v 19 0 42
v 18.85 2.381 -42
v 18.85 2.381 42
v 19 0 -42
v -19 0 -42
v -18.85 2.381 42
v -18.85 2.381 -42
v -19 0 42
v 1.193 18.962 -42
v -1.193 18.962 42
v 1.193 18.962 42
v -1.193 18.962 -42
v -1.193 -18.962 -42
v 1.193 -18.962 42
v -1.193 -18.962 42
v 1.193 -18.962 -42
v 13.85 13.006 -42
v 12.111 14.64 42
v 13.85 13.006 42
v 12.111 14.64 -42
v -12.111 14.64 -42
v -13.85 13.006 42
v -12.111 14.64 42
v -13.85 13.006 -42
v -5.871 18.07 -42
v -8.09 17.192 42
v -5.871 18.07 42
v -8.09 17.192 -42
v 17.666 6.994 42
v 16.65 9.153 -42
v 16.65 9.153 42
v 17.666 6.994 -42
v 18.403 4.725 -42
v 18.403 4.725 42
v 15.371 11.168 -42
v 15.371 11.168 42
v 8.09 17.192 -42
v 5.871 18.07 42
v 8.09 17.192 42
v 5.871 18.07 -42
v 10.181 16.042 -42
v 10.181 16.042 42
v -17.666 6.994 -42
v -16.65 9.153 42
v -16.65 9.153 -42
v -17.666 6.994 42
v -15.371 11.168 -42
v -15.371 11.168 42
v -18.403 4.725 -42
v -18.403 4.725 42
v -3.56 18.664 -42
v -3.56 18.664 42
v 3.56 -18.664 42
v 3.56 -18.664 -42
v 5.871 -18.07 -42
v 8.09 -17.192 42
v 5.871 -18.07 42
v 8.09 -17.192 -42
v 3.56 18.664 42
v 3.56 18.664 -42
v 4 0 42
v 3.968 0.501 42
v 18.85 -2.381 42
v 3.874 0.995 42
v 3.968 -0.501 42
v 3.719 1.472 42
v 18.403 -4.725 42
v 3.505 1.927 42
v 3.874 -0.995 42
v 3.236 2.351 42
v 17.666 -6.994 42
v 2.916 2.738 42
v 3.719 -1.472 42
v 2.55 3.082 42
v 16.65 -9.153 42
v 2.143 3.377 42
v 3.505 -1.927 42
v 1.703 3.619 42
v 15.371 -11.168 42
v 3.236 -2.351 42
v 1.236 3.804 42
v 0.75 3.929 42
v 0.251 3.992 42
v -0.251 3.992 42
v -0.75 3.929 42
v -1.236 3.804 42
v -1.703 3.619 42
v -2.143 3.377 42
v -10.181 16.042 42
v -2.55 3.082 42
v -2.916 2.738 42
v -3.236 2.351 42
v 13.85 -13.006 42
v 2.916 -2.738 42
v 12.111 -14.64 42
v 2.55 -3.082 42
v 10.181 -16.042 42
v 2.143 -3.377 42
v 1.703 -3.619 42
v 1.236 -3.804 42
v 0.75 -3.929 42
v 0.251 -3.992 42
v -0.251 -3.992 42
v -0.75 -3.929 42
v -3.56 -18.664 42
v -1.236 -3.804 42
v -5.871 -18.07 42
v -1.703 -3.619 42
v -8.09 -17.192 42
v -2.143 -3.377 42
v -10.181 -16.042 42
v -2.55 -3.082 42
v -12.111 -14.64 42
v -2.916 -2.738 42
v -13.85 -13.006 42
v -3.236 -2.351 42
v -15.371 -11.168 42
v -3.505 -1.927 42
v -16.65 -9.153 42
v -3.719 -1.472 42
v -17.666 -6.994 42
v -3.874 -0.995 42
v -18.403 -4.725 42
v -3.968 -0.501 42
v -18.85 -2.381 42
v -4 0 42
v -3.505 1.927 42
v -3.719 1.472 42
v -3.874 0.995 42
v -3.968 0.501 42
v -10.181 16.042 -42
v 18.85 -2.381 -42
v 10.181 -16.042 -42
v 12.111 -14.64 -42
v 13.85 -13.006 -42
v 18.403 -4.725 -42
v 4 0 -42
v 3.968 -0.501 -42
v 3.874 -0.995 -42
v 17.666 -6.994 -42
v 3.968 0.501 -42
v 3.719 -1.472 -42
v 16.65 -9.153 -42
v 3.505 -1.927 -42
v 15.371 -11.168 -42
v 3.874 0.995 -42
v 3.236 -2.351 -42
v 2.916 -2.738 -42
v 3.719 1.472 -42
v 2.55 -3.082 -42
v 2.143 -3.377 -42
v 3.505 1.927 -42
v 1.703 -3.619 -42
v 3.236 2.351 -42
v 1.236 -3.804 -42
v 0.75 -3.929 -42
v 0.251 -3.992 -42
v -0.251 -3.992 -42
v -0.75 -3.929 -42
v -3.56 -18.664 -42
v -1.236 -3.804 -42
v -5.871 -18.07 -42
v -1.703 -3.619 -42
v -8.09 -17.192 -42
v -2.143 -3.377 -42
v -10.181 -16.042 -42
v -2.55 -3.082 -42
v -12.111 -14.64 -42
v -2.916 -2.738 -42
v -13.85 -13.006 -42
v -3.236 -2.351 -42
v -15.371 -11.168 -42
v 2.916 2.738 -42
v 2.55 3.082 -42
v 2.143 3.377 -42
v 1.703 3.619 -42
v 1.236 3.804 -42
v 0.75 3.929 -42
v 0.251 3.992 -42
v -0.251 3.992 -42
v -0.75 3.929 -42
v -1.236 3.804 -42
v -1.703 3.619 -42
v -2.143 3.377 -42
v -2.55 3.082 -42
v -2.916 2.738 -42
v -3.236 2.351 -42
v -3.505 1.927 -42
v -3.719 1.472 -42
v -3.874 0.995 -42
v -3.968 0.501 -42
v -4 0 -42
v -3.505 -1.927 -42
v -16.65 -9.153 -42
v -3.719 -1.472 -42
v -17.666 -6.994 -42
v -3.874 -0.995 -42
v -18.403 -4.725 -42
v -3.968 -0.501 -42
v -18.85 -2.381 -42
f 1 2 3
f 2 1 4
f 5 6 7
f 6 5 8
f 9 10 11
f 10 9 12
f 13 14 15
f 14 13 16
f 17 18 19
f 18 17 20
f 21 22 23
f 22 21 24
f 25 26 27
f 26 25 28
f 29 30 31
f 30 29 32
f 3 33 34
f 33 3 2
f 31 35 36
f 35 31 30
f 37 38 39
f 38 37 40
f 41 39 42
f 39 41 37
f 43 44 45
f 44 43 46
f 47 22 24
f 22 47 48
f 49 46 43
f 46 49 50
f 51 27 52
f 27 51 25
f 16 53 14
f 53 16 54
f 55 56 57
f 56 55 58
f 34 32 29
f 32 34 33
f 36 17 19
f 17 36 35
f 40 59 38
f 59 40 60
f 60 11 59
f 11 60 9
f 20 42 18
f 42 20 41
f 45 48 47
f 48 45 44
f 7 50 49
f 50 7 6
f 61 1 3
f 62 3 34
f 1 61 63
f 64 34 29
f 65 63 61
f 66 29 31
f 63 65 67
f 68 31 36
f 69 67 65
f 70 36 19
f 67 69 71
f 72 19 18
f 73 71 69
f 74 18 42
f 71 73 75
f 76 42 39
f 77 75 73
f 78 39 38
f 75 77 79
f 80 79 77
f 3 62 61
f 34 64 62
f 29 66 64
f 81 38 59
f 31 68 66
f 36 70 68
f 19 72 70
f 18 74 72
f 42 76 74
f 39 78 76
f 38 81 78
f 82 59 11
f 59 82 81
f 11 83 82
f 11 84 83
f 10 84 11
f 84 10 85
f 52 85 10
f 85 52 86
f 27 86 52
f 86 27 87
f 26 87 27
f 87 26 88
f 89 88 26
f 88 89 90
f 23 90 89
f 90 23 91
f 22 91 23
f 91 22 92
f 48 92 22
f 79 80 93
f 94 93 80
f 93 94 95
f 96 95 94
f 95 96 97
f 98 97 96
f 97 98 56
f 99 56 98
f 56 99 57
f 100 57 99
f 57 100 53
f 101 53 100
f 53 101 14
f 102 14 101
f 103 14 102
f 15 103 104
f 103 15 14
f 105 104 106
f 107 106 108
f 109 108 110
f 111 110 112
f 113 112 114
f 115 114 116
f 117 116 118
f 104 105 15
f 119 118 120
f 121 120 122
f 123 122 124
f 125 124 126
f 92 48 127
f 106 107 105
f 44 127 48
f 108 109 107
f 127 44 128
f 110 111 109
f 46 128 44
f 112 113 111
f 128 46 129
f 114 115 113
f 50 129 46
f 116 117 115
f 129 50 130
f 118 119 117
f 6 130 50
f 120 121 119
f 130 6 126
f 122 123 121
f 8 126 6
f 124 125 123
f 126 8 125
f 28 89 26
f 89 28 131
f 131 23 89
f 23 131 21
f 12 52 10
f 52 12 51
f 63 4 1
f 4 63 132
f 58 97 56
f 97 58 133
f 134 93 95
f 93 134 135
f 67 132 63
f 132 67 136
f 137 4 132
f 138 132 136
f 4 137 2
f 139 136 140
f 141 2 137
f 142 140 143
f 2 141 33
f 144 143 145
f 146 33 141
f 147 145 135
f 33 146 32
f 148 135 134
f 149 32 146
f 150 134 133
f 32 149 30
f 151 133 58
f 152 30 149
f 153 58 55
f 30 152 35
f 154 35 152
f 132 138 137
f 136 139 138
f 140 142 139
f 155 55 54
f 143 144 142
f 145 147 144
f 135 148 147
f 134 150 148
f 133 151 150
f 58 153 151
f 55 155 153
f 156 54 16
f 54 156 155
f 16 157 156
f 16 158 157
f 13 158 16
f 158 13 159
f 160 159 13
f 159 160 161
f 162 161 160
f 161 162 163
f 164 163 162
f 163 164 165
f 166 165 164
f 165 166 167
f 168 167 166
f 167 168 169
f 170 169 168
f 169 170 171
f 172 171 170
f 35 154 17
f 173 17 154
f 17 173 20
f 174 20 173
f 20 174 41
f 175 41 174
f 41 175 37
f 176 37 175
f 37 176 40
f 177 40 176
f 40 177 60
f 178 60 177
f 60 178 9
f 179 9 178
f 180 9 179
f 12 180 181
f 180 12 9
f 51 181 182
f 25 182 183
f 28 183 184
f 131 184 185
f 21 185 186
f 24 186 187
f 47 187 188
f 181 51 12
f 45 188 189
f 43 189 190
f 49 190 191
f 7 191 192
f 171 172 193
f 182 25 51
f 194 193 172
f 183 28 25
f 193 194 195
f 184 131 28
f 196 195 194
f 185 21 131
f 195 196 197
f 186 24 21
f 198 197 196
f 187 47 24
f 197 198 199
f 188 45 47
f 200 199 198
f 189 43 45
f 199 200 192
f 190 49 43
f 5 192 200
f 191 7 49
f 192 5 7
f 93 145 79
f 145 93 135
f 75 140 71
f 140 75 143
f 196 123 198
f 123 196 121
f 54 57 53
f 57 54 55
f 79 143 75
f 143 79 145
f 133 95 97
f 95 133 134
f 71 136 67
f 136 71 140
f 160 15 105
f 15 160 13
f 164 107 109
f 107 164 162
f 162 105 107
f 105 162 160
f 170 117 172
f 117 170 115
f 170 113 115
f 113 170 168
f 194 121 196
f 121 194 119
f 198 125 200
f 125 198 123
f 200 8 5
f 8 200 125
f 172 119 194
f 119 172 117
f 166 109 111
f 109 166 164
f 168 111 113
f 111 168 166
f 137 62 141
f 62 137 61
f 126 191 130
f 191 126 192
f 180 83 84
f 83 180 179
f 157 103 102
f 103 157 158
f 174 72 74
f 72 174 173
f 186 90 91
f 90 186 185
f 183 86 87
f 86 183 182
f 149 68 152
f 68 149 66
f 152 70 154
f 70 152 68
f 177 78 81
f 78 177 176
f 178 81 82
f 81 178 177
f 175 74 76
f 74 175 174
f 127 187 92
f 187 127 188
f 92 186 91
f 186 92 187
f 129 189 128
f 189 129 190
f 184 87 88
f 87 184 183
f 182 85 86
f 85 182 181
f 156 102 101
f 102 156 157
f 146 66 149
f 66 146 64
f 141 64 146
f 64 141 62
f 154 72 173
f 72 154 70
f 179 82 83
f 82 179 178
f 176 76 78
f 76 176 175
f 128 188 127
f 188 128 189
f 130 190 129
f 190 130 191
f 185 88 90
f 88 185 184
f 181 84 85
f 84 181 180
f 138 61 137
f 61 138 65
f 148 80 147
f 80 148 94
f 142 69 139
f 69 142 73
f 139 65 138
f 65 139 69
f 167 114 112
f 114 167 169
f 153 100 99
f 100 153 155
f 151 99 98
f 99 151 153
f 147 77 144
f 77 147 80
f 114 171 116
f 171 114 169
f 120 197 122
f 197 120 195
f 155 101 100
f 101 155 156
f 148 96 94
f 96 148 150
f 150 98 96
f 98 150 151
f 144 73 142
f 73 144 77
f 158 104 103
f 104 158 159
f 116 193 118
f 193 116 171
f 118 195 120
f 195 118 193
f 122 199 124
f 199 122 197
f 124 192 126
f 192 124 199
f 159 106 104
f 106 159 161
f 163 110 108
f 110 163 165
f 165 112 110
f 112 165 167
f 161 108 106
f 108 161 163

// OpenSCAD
$fn = 50;


difference() {
	union() {
		translate(v = [0, 0, -42.0000000000]) {
			cylinder(h = 84, r = 19.0000000000);
		}
	}
	union() {
		translate(v = [0, 0, -100.0000000000]) {
			cylinder(h = 200, r = 4.0000000000);
		}
	}
}
